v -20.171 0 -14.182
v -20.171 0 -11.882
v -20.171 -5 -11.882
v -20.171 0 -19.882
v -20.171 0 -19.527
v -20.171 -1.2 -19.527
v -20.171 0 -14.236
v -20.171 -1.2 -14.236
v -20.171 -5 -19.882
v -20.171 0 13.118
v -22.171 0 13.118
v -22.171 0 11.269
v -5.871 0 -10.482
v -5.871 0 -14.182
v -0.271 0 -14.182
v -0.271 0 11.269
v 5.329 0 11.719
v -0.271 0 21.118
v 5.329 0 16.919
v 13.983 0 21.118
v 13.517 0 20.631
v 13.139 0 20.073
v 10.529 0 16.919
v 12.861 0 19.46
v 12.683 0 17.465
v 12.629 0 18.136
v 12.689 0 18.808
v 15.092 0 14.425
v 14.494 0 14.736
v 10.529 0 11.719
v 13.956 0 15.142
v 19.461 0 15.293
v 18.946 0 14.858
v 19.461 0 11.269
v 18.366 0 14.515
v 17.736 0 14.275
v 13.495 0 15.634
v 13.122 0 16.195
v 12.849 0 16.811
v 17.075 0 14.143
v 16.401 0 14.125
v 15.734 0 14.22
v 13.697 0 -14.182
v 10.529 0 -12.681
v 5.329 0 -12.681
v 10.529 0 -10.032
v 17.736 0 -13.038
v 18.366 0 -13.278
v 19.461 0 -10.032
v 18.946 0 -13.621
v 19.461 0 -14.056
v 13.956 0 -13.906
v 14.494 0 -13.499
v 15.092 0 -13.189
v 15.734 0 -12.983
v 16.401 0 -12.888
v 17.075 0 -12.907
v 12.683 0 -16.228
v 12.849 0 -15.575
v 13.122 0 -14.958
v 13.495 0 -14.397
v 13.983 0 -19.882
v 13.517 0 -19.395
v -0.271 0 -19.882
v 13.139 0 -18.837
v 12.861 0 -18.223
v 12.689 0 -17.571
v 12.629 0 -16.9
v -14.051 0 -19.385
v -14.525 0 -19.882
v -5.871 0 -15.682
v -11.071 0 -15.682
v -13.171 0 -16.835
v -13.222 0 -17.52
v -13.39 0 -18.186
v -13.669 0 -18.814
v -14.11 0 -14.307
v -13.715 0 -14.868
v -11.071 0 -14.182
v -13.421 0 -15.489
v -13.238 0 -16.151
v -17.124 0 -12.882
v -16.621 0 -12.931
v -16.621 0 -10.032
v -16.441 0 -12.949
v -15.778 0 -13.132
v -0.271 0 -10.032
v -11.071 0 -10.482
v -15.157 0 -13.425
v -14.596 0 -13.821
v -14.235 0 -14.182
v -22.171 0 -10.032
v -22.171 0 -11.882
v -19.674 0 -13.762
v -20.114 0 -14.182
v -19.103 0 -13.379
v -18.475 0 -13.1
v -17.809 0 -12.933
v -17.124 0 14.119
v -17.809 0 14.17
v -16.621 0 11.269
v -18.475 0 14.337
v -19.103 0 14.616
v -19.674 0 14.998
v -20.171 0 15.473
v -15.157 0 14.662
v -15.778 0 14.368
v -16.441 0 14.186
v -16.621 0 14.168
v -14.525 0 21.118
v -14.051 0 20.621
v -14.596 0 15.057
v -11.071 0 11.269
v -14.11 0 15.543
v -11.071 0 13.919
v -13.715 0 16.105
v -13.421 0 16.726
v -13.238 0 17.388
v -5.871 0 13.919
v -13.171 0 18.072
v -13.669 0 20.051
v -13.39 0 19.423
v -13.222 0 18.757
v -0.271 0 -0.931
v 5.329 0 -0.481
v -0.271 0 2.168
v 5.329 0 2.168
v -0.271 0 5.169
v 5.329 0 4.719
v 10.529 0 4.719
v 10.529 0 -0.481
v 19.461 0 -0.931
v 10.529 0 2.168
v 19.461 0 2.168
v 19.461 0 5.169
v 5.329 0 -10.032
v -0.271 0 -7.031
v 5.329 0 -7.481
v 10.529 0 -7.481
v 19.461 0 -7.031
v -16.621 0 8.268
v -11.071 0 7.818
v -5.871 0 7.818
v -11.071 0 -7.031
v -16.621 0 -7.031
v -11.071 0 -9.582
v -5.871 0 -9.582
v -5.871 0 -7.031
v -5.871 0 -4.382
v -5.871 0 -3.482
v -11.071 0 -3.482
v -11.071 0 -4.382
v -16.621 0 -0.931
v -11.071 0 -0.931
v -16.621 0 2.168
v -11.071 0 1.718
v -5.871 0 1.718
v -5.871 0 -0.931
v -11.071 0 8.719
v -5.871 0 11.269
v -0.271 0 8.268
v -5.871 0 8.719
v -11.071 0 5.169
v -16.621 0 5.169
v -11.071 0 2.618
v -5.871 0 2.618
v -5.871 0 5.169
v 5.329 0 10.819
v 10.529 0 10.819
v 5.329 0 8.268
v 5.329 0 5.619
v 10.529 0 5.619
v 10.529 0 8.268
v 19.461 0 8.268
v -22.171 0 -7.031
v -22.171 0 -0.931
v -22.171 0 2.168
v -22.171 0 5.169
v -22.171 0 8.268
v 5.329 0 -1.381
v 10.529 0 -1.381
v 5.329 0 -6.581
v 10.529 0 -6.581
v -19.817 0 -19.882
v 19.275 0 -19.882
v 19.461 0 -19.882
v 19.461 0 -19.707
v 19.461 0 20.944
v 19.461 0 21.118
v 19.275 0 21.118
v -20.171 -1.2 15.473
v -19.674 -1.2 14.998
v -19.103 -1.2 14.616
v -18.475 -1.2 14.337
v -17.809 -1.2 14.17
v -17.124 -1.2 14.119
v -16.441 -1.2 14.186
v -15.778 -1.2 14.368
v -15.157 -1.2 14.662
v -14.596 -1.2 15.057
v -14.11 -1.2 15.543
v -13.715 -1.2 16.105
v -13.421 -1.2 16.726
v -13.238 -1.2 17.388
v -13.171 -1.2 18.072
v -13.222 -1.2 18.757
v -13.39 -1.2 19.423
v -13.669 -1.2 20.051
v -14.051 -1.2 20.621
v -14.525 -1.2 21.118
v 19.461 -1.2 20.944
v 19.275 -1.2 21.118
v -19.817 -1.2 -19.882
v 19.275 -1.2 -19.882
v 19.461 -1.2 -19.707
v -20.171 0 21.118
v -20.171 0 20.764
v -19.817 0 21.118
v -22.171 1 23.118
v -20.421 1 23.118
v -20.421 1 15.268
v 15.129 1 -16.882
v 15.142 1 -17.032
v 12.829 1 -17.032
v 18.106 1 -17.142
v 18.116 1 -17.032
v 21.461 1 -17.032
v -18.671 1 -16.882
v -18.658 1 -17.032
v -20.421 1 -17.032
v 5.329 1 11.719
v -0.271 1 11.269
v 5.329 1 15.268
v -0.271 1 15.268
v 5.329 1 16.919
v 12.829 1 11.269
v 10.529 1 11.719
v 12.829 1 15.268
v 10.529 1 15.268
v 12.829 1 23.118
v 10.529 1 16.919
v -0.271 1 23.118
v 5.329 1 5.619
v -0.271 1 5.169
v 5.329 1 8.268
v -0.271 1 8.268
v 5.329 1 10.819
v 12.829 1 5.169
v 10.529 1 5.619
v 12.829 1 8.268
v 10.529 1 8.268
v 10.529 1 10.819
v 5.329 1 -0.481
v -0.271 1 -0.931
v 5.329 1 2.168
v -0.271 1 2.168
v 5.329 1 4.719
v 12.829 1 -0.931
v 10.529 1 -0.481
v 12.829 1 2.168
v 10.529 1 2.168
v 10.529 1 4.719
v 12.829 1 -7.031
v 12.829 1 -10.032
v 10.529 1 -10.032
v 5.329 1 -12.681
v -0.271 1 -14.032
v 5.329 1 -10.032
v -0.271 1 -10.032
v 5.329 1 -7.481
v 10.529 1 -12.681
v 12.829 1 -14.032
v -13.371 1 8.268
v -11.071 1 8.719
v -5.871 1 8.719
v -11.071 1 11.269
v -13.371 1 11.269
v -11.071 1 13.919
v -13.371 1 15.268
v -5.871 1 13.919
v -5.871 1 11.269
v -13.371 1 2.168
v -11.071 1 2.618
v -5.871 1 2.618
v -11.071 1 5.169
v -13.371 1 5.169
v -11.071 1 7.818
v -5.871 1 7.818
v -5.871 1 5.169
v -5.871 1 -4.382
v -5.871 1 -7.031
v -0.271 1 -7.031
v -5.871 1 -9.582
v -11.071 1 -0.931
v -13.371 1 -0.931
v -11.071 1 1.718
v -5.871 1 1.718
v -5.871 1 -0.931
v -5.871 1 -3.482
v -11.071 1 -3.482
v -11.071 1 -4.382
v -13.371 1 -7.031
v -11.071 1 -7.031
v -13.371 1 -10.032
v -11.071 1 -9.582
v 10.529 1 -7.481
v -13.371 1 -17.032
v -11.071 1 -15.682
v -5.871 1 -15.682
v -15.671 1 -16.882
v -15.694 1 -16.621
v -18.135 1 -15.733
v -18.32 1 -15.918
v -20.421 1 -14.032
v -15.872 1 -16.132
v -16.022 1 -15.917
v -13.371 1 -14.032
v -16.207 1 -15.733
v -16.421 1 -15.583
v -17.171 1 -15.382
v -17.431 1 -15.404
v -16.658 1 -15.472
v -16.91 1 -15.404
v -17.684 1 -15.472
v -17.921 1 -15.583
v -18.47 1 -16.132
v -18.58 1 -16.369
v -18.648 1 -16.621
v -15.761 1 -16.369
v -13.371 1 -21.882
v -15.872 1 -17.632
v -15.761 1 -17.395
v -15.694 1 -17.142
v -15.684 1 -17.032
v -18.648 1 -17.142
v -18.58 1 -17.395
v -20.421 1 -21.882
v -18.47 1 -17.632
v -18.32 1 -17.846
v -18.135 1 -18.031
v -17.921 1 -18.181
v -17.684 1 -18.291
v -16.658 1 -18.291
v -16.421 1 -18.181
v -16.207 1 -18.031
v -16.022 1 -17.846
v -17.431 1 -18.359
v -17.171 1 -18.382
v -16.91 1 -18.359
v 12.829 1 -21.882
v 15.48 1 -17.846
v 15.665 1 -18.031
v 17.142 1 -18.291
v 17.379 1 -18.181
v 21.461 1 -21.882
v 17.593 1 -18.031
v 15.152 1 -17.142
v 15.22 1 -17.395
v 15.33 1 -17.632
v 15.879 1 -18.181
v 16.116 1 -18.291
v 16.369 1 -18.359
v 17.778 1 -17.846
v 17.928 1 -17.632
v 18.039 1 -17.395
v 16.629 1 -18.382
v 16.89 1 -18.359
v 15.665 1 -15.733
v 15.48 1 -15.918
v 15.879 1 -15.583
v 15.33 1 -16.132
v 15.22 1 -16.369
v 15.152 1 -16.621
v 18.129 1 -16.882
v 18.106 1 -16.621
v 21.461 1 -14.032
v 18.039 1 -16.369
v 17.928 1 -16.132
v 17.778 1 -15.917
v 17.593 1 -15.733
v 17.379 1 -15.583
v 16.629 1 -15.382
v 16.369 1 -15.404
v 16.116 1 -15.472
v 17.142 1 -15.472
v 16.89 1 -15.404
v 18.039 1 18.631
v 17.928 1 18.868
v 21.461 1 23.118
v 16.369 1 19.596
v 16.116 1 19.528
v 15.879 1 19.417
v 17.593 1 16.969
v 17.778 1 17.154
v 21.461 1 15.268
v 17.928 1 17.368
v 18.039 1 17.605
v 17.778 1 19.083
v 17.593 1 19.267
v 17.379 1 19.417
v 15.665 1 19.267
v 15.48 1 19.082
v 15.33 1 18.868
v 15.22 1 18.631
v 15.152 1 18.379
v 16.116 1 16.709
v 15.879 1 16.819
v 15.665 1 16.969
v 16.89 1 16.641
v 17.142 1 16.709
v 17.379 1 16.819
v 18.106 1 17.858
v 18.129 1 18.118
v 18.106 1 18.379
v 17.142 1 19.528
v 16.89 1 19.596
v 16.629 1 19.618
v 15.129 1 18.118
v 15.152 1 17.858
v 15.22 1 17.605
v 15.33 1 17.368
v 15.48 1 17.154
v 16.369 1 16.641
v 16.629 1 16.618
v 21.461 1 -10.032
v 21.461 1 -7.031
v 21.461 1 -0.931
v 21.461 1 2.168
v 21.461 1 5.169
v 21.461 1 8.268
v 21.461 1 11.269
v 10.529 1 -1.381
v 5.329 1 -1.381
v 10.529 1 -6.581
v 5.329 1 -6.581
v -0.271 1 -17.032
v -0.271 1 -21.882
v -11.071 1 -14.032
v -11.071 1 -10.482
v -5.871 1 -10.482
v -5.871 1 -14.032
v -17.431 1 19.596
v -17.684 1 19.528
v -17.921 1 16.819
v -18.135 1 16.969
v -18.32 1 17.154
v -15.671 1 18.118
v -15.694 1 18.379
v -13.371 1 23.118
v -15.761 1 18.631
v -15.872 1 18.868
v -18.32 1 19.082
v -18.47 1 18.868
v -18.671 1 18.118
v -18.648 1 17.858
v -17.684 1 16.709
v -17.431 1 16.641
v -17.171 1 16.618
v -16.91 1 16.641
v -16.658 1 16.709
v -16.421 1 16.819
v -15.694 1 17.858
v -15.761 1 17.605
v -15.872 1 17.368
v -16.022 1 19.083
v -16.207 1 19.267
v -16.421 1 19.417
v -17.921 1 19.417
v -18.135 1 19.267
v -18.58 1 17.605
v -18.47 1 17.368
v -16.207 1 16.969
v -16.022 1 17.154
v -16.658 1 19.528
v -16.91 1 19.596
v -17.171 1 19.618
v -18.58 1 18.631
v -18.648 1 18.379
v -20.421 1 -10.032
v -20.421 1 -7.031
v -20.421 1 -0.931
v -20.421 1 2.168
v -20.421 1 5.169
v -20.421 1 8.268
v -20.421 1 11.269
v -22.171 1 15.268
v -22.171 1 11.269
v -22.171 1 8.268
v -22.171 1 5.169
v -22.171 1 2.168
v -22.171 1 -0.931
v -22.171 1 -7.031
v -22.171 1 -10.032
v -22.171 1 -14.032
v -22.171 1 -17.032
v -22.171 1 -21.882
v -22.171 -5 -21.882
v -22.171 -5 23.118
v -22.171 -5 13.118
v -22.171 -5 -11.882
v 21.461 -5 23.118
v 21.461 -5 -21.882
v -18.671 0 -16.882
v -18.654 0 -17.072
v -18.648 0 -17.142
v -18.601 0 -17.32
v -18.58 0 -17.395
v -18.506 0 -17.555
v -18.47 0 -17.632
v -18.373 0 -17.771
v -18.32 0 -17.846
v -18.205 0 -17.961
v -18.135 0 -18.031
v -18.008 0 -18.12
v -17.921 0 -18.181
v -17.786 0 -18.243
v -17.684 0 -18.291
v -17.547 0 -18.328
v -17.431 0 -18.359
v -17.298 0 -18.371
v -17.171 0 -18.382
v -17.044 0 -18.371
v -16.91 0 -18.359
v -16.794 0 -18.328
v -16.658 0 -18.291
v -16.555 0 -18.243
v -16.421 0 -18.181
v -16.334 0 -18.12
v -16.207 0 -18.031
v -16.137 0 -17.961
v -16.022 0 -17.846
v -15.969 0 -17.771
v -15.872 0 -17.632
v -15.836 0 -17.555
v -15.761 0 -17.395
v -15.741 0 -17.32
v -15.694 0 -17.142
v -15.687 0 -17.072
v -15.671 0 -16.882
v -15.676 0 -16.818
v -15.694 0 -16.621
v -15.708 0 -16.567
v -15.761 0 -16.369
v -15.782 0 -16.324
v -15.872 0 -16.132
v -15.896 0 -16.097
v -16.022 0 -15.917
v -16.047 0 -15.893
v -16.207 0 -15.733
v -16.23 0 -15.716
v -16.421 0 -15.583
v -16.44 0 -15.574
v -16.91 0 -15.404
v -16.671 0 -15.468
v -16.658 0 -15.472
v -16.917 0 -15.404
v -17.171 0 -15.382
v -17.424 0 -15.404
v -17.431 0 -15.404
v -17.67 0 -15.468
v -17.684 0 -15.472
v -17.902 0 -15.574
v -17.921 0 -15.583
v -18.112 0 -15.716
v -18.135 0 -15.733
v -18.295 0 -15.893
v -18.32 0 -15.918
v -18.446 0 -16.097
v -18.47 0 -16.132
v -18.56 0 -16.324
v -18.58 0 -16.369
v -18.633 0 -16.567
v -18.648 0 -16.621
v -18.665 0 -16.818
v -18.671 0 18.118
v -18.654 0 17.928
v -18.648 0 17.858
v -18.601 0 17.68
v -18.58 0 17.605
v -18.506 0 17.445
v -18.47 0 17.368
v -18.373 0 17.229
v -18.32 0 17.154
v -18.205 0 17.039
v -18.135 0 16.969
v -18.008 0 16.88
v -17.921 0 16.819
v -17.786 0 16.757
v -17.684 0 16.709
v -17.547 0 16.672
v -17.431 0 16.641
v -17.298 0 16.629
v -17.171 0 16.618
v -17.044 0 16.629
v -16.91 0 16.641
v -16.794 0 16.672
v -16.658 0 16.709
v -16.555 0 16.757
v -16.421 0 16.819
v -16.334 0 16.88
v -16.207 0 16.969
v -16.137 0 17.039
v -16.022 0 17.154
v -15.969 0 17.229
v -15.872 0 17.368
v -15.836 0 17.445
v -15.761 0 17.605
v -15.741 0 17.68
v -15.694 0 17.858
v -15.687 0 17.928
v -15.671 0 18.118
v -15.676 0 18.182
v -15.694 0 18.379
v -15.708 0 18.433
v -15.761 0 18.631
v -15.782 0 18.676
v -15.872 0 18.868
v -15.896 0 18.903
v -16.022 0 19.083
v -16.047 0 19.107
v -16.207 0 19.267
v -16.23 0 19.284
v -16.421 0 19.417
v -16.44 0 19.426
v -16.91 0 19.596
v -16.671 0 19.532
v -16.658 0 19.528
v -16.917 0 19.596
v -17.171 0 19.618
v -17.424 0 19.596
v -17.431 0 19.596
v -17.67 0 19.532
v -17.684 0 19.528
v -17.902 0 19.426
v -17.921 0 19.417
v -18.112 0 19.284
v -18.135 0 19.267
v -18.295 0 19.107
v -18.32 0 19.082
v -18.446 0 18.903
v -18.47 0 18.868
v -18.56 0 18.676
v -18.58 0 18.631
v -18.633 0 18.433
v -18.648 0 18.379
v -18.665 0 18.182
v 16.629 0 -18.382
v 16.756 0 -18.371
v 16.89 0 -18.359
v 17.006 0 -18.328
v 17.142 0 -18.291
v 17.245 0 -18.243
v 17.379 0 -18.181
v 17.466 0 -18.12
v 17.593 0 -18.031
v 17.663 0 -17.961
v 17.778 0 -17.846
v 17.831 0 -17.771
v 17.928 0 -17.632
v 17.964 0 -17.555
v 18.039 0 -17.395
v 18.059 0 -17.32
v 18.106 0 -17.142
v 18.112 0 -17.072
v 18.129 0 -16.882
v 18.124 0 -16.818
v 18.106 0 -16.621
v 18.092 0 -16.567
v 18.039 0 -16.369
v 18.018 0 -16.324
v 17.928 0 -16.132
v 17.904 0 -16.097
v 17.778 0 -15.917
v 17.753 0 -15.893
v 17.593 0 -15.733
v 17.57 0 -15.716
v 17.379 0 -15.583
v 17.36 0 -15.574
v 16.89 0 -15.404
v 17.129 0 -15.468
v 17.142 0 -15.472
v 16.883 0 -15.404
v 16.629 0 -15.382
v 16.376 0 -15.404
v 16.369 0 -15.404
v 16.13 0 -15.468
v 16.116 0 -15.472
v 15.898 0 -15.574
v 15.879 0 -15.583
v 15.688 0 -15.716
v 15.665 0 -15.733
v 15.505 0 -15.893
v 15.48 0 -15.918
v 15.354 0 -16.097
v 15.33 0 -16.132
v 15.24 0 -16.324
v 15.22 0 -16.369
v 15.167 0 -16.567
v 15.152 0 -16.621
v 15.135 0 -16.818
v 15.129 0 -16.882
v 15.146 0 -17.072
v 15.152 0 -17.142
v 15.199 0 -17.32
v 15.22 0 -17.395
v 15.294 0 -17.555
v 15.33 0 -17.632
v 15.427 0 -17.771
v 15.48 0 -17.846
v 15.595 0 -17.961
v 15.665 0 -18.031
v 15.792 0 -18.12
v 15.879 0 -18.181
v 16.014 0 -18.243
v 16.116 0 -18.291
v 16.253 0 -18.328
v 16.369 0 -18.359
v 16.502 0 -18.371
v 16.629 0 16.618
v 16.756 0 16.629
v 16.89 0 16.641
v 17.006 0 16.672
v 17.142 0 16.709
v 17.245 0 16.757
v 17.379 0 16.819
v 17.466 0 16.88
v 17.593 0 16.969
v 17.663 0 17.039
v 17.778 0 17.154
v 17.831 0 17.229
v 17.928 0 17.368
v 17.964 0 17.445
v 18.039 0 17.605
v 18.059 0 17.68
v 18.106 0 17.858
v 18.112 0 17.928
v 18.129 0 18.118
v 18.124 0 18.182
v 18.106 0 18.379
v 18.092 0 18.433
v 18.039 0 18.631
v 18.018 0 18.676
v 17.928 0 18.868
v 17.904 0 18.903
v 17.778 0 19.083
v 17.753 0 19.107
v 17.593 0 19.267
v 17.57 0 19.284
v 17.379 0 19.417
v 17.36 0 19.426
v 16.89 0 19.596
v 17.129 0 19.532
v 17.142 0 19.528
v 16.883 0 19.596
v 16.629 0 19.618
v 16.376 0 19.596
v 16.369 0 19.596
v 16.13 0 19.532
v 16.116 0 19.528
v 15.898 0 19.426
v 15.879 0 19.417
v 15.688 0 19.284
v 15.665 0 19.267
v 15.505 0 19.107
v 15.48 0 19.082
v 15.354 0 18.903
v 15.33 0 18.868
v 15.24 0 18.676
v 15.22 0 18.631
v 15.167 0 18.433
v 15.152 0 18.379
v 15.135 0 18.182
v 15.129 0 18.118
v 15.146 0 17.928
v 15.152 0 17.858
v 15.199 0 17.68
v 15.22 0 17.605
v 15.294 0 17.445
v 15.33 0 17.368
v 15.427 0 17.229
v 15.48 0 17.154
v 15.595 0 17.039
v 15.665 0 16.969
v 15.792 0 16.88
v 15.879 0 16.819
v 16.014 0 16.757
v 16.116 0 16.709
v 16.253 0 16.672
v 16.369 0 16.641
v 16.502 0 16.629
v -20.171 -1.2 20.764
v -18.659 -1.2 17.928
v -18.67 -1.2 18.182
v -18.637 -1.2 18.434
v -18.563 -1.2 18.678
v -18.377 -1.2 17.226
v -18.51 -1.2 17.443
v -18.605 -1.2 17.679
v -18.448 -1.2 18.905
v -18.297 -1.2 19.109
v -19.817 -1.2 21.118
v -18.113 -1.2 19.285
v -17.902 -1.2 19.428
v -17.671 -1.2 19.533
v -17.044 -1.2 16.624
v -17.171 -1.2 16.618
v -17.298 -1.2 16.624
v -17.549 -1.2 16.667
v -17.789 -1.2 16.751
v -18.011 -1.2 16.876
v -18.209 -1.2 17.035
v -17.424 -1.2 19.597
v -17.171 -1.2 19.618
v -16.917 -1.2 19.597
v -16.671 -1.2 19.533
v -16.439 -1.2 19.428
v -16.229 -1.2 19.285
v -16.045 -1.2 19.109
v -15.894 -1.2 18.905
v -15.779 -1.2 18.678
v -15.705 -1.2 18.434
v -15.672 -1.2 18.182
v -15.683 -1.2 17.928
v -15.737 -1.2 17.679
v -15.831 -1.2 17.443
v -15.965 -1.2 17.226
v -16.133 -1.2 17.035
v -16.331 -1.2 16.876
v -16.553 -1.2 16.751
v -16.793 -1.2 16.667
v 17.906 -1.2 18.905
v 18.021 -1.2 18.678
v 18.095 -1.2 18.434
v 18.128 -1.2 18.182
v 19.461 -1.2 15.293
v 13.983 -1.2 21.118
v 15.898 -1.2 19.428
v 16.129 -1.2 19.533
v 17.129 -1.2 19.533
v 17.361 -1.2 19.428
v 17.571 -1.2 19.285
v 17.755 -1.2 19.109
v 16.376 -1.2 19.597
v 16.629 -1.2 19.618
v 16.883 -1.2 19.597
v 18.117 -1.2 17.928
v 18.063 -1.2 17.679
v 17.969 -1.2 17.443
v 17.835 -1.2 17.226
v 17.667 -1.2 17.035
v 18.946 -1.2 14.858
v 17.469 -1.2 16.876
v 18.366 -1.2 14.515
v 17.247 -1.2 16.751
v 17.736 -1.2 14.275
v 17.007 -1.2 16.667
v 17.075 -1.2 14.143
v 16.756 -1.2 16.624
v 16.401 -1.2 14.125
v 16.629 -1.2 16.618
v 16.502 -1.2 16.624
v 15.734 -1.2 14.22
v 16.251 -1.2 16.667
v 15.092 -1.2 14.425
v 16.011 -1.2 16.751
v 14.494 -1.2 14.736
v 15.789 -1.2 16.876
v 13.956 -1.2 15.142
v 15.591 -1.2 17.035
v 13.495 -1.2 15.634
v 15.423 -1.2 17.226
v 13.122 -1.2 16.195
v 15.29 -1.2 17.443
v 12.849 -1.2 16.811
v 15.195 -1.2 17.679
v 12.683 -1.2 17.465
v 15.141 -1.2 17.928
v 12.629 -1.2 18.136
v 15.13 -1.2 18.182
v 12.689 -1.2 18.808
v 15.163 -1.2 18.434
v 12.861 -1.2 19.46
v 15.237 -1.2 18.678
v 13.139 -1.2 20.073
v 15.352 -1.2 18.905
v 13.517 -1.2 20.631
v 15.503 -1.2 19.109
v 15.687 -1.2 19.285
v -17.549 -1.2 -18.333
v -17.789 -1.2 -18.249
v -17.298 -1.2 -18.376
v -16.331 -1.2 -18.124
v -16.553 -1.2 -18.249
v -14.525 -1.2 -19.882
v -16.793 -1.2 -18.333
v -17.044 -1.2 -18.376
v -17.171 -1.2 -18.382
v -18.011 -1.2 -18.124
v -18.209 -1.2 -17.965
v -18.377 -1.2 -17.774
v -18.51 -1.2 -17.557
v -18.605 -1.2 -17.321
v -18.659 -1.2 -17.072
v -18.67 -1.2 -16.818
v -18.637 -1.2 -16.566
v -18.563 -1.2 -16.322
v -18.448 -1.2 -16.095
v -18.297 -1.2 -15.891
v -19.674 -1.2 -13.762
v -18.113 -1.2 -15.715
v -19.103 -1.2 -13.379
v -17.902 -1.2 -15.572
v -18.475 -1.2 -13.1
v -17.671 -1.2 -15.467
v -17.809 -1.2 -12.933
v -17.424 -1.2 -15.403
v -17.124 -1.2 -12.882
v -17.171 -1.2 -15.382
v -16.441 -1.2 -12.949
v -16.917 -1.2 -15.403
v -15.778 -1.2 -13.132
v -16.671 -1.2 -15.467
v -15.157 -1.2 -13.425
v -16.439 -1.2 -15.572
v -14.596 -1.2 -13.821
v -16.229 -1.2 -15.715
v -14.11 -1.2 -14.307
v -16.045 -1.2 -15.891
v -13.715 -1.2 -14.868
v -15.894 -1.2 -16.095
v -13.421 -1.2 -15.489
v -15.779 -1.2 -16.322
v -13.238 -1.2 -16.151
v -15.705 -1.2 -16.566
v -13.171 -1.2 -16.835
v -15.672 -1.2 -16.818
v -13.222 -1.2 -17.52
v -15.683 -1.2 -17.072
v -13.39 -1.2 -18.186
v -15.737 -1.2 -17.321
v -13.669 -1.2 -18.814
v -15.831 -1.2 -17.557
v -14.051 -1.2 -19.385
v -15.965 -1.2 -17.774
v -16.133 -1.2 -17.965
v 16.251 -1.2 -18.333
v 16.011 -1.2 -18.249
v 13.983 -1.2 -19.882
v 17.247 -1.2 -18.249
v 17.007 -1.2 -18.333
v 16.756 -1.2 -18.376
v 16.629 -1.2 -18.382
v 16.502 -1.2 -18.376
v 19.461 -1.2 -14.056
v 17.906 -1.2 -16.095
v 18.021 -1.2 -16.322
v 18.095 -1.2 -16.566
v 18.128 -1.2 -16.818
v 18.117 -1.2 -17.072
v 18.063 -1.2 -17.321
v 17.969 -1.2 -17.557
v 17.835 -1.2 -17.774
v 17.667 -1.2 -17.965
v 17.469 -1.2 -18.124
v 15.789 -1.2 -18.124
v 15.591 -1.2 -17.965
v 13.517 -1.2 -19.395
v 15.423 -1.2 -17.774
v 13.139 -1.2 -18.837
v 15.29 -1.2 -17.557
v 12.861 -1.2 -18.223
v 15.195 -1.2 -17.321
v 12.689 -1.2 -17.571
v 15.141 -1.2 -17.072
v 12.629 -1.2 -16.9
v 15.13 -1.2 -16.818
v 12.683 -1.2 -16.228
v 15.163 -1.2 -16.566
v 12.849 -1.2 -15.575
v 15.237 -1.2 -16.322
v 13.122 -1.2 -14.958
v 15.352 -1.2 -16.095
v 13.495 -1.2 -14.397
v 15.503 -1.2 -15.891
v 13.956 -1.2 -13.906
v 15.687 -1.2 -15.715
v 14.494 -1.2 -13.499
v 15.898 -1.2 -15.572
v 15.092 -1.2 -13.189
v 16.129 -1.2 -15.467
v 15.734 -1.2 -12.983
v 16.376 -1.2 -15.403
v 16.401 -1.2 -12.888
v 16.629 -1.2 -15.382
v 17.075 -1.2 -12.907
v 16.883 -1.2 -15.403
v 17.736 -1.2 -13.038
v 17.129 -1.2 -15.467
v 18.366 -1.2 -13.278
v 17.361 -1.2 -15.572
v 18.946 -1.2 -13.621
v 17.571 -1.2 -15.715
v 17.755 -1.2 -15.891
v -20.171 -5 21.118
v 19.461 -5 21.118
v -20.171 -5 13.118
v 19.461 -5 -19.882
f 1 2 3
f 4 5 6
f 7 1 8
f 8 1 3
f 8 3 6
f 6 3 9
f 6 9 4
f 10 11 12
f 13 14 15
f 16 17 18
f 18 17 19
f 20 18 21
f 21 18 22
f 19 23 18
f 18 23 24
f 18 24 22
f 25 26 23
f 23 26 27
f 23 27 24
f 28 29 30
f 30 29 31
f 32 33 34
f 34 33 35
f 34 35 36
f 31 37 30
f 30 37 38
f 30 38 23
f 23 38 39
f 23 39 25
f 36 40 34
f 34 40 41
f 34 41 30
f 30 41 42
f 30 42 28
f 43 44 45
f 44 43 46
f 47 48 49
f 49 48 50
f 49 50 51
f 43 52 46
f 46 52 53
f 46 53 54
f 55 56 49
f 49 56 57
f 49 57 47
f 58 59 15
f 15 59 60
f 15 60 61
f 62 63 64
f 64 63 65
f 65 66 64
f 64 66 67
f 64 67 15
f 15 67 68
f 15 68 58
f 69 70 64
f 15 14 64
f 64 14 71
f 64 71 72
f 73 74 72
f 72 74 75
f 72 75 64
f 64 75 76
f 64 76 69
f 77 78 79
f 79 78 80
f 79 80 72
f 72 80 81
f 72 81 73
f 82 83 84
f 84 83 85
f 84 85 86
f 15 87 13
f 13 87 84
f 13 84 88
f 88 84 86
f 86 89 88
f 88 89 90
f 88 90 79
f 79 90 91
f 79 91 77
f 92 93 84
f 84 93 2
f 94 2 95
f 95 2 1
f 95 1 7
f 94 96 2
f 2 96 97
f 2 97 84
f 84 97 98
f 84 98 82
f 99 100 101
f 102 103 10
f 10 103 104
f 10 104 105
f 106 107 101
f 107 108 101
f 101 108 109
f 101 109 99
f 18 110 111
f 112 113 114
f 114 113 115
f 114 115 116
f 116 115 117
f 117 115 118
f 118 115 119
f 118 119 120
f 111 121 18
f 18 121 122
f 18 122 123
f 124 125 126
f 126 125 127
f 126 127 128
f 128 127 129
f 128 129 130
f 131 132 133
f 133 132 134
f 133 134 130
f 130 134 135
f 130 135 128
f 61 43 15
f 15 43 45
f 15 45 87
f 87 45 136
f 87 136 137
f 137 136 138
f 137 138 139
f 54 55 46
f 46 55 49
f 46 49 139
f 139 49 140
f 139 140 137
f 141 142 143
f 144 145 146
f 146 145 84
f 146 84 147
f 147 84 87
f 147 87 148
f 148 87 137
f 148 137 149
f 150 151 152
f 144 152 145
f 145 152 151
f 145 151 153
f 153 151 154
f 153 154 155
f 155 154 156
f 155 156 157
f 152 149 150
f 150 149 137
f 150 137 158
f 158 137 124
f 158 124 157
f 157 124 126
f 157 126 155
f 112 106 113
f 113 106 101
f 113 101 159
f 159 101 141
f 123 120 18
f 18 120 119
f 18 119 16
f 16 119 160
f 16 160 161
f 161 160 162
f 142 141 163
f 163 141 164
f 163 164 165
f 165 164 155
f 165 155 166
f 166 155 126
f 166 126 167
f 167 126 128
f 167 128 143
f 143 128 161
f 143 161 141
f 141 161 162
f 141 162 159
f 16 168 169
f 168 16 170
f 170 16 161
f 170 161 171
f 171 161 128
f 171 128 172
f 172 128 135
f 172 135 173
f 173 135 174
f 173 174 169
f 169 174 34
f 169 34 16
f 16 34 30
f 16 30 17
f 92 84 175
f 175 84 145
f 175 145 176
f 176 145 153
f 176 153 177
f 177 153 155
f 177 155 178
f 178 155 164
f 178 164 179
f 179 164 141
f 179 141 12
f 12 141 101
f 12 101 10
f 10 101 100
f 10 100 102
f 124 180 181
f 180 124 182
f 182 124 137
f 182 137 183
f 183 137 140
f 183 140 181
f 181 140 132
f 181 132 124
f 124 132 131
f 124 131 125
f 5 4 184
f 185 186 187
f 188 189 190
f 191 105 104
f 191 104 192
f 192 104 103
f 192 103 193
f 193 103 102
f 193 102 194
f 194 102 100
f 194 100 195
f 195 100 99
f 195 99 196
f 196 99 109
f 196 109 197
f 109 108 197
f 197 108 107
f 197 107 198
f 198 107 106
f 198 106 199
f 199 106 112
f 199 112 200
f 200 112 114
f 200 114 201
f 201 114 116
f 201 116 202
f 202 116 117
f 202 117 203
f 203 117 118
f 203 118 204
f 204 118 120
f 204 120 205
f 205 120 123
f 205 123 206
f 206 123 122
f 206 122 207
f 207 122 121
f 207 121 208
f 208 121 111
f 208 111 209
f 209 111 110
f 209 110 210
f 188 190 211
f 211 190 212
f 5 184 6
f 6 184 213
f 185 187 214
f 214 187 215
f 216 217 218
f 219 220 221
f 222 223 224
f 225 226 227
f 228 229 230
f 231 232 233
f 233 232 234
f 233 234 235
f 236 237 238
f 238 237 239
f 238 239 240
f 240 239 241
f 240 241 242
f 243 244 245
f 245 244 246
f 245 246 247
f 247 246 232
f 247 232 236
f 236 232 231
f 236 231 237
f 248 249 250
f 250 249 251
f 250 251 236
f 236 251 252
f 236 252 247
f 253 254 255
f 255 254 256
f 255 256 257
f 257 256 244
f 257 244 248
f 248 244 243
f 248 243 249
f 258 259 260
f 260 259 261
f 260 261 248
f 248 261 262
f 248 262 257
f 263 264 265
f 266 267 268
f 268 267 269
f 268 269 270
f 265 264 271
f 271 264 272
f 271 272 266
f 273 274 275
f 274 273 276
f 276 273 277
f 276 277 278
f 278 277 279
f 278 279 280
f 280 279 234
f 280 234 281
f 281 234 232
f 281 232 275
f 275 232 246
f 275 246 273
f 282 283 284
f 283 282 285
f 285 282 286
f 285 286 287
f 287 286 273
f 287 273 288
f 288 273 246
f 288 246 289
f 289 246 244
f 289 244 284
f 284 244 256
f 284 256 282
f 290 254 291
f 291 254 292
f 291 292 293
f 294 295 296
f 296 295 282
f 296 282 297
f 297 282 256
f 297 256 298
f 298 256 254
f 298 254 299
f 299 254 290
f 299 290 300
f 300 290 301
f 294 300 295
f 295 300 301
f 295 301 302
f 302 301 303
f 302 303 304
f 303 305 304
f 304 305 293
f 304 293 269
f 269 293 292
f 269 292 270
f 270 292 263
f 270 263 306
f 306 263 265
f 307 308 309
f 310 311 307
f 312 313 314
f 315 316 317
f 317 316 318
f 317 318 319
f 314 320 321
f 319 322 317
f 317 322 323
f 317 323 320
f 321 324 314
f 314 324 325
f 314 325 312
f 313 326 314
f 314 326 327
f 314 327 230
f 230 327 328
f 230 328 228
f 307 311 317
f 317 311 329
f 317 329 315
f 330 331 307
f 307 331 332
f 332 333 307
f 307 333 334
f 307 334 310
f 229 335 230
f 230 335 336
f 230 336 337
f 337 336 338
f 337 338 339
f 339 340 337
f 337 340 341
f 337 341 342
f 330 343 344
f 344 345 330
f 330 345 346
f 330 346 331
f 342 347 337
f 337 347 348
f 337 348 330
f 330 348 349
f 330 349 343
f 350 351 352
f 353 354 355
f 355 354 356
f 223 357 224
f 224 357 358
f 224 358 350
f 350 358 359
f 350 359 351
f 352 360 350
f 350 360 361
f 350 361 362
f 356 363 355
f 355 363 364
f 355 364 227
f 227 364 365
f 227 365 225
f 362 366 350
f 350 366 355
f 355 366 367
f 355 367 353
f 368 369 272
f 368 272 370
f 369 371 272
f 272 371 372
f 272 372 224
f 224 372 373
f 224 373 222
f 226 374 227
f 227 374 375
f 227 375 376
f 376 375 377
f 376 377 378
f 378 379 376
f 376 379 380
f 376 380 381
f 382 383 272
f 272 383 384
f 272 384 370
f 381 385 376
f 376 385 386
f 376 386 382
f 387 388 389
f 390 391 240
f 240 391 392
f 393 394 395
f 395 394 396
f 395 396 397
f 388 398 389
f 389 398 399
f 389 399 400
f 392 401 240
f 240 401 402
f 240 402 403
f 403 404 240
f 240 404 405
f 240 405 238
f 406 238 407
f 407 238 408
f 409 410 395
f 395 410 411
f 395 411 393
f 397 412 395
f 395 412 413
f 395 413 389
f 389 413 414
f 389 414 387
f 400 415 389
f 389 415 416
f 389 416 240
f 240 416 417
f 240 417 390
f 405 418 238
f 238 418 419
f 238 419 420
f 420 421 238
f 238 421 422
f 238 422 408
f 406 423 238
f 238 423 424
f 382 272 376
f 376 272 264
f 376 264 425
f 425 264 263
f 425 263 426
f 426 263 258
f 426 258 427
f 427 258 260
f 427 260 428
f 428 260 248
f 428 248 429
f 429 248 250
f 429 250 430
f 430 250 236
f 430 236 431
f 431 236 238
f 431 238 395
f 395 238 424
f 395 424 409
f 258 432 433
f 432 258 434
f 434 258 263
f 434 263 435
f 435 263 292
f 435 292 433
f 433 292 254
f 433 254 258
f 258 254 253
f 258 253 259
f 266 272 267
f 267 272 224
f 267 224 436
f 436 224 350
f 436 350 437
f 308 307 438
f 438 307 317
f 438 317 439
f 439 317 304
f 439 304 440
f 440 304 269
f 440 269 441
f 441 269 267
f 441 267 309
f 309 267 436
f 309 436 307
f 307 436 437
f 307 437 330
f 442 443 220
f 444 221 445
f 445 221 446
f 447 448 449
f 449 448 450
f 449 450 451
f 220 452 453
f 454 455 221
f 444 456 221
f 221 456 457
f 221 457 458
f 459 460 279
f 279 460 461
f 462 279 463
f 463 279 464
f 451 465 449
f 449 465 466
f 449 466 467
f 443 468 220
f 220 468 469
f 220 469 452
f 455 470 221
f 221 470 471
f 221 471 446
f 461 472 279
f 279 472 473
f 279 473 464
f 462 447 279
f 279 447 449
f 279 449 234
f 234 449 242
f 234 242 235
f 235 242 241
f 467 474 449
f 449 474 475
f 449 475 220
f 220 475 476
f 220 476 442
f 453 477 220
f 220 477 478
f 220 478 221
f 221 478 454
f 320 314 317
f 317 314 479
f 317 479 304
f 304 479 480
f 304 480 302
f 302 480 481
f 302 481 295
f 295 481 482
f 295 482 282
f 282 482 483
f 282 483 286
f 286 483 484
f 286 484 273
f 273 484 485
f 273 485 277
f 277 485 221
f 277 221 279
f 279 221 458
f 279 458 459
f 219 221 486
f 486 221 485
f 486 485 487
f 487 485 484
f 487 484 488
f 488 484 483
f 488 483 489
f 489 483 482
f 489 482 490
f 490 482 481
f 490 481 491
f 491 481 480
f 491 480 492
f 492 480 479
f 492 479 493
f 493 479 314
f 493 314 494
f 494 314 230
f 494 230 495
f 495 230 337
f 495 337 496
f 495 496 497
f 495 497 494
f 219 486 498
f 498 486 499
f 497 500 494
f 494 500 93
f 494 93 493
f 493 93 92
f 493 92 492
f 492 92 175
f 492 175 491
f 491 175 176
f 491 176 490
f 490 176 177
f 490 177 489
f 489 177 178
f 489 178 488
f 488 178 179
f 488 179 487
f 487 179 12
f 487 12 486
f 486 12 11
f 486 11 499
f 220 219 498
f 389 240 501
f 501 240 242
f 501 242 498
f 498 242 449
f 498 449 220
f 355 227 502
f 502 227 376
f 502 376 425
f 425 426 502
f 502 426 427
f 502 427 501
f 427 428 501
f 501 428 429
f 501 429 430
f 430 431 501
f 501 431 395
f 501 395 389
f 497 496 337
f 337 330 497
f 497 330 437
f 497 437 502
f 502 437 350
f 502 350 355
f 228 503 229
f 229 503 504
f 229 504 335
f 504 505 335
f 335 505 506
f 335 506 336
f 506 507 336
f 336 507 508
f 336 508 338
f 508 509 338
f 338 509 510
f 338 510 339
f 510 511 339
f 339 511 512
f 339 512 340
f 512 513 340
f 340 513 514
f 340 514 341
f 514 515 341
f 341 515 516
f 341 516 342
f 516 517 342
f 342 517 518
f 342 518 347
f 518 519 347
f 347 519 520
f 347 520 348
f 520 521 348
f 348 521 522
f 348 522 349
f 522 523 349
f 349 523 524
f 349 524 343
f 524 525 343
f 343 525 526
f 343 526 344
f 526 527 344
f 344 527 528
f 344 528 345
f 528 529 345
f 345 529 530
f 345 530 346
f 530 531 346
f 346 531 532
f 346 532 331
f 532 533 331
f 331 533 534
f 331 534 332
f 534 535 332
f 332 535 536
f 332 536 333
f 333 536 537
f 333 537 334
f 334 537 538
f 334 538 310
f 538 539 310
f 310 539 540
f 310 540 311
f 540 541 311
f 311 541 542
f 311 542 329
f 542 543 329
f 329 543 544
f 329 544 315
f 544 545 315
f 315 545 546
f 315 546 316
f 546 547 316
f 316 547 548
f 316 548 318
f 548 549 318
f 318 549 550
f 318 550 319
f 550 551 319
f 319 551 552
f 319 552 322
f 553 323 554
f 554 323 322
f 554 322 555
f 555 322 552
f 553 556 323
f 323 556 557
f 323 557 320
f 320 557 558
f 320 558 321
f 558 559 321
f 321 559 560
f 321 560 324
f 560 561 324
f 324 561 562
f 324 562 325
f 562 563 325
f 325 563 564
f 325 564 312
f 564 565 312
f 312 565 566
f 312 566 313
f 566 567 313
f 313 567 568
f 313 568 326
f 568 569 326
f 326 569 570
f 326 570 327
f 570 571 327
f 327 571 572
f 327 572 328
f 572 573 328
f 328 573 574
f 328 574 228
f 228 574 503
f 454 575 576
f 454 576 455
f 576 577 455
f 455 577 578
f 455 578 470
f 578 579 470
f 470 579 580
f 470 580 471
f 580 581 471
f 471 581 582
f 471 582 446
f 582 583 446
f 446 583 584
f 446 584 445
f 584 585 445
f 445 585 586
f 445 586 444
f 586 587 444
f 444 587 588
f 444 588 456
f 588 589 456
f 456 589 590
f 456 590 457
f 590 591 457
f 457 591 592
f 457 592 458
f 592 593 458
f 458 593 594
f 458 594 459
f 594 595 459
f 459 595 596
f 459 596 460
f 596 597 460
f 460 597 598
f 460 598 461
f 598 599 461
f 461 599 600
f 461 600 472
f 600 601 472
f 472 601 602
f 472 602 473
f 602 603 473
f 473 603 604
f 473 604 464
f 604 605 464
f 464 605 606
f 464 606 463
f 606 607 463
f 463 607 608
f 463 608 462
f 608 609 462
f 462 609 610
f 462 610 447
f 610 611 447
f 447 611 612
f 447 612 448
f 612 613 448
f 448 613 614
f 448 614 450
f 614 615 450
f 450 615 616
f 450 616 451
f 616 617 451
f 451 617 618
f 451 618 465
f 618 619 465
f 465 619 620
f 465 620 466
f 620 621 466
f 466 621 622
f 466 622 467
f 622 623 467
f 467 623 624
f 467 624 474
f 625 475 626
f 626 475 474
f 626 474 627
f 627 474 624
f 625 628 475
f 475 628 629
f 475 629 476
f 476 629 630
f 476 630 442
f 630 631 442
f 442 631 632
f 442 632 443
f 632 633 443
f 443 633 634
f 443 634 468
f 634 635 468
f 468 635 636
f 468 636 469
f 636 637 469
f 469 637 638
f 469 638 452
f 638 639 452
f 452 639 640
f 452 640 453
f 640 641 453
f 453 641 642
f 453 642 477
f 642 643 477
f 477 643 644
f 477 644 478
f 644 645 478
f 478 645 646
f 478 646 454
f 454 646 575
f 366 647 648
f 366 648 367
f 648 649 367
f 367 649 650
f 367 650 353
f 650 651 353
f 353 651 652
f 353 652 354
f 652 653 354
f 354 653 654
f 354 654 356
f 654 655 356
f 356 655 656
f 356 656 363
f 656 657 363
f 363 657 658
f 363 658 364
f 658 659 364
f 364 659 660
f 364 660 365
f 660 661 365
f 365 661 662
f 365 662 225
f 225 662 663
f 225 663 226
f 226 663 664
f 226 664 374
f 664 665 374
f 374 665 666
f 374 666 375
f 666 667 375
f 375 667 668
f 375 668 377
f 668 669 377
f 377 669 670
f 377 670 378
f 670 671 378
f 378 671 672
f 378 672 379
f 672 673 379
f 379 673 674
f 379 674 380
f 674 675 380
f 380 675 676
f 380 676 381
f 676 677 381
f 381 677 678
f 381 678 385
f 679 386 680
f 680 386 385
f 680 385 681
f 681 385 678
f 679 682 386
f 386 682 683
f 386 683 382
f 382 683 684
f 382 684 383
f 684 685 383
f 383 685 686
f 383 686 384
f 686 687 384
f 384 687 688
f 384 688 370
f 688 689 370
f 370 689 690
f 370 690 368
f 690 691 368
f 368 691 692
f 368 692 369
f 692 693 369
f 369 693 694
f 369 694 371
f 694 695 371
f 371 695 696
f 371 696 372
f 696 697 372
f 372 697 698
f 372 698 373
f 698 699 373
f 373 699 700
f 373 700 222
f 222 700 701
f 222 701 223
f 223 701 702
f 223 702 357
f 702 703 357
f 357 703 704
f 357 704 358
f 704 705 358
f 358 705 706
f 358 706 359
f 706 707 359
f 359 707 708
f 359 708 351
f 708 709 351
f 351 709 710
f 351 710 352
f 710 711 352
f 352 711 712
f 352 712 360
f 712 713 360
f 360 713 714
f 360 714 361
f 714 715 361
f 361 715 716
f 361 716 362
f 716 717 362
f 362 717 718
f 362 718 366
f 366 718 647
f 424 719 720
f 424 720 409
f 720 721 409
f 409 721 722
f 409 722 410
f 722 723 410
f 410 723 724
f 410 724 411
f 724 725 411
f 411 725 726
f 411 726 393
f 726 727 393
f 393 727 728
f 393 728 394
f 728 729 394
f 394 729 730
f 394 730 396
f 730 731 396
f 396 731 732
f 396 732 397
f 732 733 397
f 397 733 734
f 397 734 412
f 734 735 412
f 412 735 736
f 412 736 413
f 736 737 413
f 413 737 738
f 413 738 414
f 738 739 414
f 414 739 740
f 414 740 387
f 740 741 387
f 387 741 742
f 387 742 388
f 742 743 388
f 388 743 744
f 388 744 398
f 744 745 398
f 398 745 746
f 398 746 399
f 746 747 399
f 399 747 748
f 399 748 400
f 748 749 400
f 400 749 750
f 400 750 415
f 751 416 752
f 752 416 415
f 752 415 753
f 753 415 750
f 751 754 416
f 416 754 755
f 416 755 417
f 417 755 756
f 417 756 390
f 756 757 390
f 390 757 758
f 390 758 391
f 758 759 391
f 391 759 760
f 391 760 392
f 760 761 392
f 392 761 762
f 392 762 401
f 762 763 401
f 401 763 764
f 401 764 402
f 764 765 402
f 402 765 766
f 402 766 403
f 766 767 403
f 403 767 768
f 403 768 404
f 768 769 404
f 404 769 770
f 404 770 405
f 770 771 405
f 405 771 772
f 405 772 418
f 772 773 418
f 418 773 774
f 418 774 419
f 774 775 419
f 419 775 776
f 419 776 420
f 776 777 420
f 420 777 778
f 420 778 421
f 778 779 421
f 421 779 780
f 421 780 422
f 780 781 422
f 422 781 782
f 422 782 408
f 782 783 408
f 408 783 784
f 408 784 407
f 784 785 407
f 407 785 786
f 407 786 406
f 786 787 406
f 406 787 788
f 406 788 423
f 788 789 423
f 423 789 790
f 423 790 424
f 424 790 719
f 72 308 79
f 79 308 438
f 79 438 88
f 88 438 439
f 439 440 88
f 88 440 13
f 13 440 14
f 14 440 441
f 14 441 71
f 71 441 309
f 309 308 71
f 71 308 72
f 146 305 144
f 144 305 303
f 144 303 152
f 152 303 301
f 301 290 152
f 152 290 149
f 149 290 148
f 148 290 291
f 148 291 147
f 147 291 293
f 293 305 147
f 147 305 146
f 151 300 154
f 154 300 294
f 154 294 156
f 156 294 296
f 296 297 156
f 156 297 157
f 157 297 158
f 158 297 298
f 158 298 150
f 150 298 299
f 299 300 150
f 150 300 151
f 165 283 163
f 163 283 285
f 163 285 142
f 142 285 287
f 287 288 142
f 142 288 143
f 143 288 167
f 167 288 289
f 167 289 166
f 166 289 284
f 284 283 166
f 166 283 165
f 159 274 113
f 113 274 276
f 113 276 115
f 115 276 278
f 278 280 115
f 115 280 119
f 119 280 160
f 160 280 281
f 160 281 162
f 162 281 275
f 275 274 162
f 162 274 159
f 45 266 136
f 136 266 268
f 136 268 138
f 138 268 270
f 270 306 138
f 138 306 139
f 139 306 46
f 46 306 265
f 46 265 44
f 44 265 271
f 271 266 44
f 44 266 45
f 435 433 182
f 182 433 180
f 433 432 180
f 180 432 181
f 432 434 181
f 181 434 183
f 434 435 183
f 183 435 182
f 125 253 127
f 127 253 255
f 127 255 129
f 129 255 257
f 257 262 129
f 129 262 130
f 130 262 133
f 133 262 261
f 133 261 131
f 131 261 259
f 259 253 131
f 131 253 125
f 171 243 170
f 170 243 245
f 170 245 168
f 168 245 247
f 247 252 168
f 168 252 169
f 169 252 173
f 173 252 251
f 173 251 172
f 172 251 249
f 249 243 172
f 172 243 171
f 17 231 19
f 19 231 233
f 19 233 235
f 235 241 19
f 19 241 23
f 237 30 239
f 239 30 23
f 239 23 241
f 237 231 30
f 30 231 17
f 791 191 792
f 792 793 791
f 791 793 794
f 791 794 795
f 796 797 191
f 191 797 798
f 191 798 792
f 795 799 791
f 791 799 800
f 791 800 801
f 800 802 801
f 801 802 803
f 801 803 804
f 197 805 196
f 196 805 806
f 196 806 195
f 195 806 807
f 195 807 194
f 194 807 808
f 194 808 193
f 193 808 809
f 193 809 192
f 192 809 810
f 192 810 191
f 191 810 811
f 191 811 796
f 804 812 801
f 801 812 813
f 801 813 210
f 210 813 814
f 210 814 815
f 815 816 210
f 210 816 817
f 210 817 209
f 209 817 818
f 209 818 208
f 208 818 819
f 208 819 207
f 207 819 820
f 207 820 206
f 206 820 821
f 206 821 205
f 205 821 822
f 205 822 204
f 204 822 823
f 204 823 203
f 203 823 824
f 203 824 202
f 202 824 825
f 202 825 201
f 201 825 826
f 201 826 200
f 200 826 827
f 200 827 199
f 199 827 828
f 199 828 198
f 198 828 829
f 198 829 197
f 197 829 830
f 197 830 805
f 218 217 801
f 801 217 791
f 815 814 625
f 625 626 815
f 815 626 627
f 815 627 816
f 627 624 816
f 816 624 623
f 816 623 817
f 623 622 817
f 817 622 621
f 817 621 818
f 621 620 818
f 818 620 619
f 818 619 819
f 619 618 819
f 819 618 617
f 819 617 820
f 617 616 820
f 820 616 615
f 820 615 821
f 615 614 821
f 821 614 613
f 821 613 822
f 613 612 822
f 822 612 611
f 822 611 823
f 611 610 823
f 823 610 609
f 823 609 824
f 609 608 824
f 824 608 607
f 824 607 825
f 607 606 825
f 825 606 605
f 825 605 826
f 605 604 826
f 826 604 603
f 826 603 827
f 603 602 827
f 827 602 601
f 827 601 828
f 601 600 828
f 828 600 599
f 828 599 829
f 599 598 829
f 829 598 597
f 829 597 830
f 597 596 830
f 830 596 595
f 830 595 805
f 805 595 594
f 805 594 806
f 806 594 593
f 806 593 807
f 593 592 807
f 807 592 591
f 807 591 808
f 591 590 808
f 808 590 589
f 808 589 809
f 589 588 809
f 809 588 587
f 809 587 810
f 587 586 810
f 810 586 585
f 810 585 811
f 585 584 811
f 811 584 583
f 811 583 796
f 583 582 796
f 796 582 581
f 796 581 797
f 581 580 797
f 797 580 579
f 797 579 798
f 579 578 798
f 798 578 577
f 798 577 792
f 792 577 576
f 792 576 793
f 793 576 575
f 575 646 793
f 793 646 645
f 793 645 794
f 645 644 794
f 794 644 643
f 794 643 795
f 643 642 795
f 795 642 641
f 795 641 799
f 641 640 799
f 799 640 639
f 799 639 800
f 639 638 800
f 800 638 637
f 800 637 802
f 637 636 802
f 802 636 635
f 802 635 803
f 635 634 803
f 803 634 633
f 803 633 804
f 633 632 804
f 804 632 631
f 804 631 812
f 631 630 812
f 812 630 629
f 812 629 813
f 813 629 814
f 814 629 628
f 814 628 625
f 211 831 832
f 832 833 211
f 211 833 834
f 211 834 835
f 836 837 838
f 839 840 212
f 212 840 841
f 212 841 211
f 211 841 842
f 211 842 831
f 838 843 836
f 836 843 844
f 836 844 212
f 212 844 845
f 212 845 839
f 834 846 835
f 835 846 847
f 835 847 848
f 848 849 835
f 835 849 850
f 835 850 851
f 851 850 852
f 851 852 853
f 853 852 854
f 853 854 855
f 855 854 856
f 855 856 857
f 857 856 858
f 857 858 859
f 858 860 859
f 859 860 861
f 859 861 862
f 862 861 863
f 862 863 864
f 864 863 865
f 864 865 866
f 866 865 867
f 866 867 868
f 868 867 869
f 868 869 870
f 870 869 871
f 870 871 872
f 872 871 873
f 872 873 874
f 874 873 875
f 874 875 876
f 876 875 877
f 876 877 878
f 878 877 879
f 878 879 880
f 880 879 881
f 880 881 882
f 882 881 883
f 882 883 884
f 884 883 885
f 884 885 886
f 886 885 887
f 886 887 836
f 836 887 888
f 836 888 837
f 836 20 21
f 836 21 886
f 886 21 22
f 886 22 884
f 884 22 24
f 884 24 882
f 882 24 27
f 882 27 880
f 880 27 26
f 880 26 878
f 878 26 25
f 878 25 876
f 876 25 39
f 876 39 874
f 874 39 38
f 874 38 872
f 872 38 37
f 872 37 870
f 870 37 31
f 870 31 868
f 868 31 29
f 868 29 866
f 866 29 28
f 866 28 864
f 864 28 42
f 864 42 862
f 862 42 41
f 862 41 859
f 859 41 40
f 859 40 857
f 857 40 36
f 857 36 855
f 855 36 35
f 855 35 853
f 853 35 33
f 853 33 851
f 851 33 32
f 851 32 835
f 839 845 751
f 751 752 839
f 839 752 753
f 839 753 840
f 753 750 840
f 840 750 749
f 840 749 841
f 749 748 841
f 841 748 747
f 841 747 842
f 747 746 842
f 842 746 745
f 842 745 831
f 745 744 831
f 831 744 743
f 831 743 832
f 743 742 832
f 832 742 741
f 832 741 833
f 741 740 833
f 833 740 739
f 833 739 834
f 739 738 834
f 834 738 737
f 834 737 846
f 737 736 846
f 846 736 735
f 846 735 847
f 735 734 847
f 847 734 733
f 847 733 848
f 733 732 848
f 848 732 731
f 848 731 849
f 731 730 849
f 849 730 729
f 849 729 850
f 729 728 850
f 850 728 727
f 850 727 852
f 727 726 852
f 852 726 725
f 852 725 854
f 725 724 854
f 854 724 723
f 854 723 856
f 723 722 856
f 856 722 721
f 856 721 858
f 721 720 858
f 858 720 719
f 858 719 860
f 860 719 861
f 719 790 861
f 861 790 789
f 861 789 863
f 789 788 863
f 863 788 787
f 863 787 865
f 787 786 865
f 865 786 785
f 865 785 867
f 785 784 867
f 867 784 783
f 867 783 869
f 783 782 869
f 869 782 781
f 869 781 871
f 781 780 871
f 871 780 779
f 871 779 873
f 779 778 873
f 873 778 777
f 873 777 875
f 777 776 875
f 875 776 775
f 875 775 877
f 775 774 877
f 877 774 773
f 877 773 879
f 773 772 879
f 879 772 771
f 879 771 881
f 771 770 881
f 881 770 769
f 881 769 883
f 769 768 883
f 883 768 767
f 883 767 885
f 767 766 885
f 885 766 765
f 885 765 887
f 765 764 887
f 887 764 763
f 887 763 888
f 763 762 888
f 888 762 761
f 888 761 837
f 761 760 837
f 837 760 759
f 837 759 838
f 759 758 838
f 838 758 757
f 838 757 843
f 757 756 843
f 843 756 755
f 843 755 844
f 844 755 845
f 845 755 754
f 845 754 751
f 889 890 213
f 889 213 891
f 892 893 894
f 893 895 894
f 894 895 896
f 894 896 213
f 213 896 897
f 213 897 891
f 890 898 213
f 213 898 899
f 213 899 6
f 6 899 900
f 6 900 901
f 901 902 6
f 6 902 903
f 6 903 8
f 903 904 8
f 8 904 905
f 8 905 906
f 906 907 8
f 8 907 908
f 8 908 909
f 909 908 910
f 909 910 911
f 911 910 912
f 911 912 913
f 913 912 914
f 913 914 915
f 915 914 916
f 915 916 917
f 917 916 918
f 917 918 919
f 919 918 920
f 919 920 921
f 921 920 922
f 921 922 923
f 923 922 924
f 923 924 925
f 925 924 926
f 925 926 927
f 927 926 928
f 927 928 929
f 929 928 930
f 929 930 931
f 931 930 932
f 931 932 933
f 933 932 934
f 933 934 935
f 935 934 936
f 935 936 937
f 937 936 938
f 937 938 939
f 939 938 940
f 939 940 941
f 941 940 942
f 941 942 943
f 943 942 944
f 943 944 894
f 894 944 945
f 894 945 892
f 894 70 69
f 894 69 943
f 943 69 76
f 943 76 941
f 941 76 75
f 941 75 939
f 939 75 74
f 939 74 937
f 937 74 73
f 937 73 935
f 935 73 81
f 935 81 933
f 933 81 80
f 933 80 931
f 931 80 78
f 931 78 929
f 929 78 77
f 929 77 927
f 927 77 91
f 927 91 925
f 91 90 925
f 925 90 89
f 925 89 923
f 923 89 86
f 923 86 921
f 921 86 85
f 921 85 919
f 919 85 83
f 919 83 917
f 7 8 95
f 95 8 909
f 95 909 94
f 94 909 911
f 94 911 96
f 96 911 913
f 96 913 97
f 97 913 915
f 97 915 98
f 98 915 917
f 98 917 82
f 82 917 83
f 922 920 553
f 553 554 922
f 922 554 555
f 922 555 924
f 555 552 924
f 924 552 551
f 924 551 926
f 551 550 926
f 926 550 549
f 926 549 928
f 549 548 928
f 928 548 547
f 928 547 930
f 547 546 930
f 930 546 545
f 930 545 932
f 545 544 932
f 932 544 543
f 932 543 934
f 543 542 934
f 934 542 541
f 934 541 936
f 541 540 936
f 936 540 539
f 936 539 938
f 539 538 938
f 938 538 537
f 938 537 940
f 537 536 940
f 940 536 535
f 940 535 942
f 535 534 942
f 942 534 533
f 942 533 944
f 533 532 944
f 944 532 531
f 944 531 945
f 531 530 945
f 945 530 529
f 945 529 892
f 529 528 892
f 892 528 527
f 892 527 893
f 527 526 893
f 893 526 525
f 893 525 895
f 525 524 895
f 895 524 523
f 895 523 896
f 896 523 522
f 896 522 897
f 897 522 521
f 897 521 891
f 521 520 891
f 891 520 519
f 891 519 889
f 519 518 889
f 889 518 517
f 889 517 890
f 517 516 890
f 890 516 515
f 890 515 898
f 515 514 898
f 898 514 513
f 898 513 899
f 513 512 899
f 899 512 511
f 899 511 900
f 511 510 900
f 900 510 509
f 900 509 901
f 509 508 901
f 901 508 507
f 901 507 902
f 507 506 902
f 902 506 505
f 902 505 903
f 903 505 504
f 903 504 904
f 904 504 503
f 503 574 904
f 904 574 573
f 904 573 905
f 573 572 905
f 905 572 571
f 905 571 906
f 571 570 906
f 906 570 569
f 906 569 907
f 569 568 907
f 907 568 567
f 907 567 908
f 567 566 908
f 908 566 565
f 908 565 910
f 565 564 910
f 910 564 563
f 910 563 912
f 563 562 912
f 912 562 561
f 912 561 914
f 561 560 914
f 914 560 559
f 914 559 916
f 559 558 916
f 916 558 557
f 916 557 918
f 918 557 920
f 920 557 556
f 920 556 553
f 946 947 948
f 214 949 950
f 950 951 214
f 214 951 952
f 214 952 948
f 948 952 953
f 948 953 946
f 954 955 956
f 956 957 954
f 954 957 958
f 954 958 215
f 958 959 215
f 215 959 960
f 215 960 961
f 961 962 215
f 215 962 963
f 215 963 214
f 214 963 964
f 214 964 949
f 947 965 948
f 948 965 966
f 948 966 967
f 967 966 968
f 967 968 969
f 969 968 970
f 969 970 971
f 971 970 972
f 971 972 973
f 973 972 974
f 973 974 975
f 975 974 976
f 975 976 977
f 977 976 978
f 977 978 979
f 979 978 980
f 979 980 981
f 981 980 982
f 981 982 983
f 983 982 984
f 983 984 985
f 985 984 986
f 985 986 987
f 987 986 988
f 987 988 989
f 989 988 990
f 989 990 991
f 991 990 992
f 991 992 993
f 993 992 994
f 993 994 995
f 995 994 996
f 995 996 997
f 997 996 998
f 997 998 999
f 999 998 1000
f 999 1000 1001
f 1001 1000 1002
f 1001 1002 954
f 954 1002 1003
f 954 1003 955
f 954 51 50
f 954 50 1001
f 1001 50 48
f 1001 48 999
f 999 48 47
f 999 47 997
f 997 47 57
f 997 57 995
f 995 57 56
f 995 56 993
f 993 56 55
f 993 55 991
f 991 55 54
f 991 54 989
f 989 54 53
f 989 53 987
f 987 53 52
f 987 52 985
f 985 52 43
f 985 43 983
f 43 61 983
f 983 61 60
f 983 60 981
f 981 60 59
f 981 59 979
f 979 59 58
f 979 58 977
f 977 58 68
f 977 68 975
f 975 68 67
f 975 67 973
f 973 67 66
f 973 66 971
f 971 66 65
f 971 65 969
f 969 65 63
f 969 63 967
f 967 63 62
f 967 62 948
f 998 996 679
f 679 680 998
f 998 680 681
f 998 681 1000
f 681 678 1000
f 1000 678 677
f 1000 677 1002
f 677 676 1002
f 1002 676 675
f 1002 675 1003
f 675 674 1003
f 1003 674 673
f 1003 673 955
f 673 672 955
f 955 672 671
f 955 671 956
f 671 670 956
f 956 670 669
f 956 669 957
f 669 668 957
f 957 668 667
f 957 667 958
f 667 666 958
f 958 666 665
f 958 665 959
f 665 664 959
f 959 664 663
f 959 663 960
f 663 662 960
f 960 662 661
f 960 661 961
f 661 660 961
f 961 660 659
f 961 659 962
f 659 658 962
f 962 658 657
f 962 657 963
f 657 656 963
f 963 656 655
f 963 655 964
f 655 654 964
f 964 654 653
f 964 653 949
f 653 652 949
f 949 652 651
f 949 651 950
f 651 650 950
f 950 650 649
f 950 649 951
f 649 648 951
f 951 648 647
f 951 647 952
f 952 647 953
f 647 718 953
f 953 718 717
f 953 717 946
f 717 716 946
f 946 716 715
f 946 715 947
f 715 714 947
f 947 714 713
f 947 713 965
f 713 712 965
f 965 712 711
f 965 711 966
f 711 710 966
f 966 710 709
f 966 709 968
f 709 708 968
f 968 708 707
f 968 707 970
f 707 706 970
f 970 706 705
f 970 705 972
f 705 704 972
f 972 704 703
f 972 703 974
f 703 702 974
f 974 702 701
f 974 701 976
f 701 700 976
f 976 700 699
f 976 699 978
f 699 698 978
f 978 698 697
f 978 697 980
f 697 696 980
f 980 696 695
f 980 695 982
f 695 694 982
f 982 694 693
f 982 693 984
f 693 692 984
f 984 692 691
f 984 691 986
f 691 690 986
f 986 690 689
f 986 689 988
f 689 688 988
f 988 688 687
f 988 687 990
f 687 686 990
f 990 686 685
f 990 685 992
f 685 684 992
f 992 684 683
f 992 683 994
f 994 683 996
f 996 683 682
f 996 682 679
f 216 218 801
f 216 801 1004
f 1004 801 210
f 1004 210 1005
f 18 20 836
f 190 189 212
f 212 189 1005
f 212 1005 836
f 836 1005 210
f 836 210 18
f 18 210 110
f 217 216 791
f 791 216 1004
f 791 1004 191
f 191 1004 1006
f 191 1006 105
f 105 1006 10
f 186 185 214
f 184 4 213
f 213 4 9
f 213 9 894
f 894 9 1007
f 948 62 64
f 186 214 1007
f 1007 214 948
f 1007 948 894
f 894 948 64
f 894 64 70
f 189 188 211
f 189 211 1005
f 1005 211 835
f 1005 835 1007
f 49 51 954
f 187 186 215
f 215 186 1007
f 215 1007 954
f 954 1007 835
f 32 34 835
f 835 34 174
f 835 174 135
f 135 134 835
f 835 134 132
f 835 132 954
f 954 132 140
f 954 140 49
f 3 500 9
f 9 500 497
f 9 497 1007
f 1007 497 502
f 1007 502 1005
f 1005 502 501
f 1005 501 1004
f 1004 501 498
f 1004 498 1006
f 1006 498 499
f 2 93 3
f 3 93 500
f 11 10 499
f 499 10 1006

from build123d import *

# Parameters (mm, degrees)
SKETCH_1_W          = 43.6316
SKETCH_1_H          = 45
SKETCH_1_RX         = 1.5
SKETCH_1_RY         = 1.5
SKETCH_1_W_2        = 5.2
SKETCH_1_H_2        = 5.2
EXTRUDE_1_DEPTH     = 1
SKETCH_3_R          = 4
SKETCH_3_R_2        = 1.5
EXTRUDE_3_DEPTH     = 1.2
SKETCH_4_W          = 43.6316
SKETCH_4_H          = 45
SKETCH_4_W_2        = 39.6316
SKETCH_4_H_2        = 41
EXTRUDE_4_DEPTH     = 5
SKETCH_5_W          = 2
SKETCH_5_H          = 25
CUT_EXTRUDE_1_DEPTH = 5


with BuildPart() as part:
    # Эскиз1 → Бобышка-Вытянуть1 (new body)
    with BuildSketch(Plane(origin=(0, 0, 0), x_dir=(1, 0, 0), z_dir=(0, 1, 0))):
        with Locations((-0.355064662, -0.618327068)):
            Rectangle(SKETCH_1_W, SKETCH_1_H)
        with Locations(Location((-17.170864662, 16.881672932), (0, 0, 90))):
            Ellipse(SKETCH_1_RX, SKETCH_1_RY, mode=Mode.SUBTRACT)
        with Locations(Location((-17.170864662, -18.118327068), (0, 0, 90))):
            Ellipse(SKETCH_1_RX, SKETCH_1_RY, mode=Mode.SUBTRACT)
        with Locations(Location((16.629135338, 16.881672932), (0, 0, 90))):
            Ellipse(SKETCH_1_RX, SKETCH_1_RY, mode=Mode.SUBTRACT)
        with Locations(Location((16.629135338, -18.118327068), (0, 0, 90))):
            Ellipse(SKETCH_1_RX, SKETCH_1_RY, mode=Mode.SUBTRACT)
        with Locations((-8.470864662, 13.081672932)):
            Rectangle(SKETCH_1_W_2, SKETCH_1_H_2, mode=Mode.SUBTRACT)
        with Locations((-8.470864662, 6.981672932)):
            Rectangle(SKETCH_1_W_2, SKETCH_1_H_2, mode=Mode.SUBTRACT)
        with Locations((-8.470864662, 0.881672932)):
            Rectangle(SKETCH_1_W_2, SKETCH_1_H_2, mode=Mode.SUBTRACT)
        with Locations((-8.470864662, -5.218327068)):
            Rectangle(SKETCH_1_W_2, SKETCH_1_H_2, mode=Mode.SUBTRACT)
        with Locations((-8.470864662, -11.318627068)):
            Rectangle(SKETCH_1_W_2, SKETCH_1_H_2, mode=Mode.SUBTRACT)
        with Locations((7.929135338, 10.081372932)):
            Rectangle(SKETCH_1_W_2, SKETCH_1_H_2, mode=Mode.SUBTRACT)
        with Locations((7.929135338, 3.981372932)):
            Rectangle(SKETCH_1_W_2, SKETCH_1_H_2, mode=Mode.SUBTRACT)
        with Locations((7.929135338, -2.118627068)):
            Rectangle(SKETCH_1_W_2, SKETCH_1_H_2, mode=Mode.SUBTRACT)
        with Locations((7.929135338, -8.218627068)):
            Rectangle(SKETCH_1_W_2, SKETCH_1_H_2, mode=Mode.SUBTRACT)
        with Locations((7.929135338, -14.318627068)):
            Rectangle(SKETCH_1_W_2, SKETCH_1_H_2, mode=Mode.SUBTRACT)
    extrude(amount=EXTRUDE_1_DEPTH)

    # Эскиз3 → Бобышка-Вытянуть3 (add)
    with BuildSketch(Plane.XZ):
        with Locations((-17.170864662, 18.118327068)):
            Circle(SKETCH_3_R)
        with Locations((-17.170864662, 18.118327068)):
            Circle(SKETCH_3_R_2, mode=Mode.SUBTRACT)
        with Locations((16.629135338, 18.118327068)):
            Circle(SKETCH_3_R)
        with Locations((16.629135338, 18.118327068)):
            Circle(SKETCH_3_R_2, mode=Mode.SUBTRACT)
        with Locations((-17.170864662, -16.881672932)):
            Circle(SKETCH_3_R)
        with Locations((-17.170864662, -16.881672932)):
            Circle(SKETCH_3_R_2, mode=Mode.SUBTRACT)
        with Locations((16.629135338, -16.881672932)):
            Circle(SKETCH_3_R)
        with Locations((16.629135338, -16.881672932)):
            Circle(SKETCH_3_R_2, mode=Mode.SUBTRACT)
    extrude(amount=EXTRUDE_3_DEPTH)

    # Эскиз4 → Бобышка-Вытянуть4 (add)
    with BuildSketch(Plane.XZ):
        with Locations((-0.355064662, 0.618327068)):
            Rectangle(SKETCH_4_W, SKETCH_4_H)
        with Locations((-0.355064662, 0.618327068)):
            Rectangle(SKETCH_4_W_2, SKETCH_4_H_2, mode=Mode.SUBTRACT)
    extrude(amount=EXTRUDE_4_DEPTH)

    # Эскиз5 → Вырез-Вытянуть1 (cut)
    with BuildSketch(Plane.XZ.offset(5)):
        with Locations((-21.170864662, 0.618327068)):
            Rectangle(SKETCH_5_W, SKETCH_5_H)
    extrude(amount=-CUT_EXTRUDE_1_DEPTH, mode=Mode.SUBTRACT)


solid = part.part
